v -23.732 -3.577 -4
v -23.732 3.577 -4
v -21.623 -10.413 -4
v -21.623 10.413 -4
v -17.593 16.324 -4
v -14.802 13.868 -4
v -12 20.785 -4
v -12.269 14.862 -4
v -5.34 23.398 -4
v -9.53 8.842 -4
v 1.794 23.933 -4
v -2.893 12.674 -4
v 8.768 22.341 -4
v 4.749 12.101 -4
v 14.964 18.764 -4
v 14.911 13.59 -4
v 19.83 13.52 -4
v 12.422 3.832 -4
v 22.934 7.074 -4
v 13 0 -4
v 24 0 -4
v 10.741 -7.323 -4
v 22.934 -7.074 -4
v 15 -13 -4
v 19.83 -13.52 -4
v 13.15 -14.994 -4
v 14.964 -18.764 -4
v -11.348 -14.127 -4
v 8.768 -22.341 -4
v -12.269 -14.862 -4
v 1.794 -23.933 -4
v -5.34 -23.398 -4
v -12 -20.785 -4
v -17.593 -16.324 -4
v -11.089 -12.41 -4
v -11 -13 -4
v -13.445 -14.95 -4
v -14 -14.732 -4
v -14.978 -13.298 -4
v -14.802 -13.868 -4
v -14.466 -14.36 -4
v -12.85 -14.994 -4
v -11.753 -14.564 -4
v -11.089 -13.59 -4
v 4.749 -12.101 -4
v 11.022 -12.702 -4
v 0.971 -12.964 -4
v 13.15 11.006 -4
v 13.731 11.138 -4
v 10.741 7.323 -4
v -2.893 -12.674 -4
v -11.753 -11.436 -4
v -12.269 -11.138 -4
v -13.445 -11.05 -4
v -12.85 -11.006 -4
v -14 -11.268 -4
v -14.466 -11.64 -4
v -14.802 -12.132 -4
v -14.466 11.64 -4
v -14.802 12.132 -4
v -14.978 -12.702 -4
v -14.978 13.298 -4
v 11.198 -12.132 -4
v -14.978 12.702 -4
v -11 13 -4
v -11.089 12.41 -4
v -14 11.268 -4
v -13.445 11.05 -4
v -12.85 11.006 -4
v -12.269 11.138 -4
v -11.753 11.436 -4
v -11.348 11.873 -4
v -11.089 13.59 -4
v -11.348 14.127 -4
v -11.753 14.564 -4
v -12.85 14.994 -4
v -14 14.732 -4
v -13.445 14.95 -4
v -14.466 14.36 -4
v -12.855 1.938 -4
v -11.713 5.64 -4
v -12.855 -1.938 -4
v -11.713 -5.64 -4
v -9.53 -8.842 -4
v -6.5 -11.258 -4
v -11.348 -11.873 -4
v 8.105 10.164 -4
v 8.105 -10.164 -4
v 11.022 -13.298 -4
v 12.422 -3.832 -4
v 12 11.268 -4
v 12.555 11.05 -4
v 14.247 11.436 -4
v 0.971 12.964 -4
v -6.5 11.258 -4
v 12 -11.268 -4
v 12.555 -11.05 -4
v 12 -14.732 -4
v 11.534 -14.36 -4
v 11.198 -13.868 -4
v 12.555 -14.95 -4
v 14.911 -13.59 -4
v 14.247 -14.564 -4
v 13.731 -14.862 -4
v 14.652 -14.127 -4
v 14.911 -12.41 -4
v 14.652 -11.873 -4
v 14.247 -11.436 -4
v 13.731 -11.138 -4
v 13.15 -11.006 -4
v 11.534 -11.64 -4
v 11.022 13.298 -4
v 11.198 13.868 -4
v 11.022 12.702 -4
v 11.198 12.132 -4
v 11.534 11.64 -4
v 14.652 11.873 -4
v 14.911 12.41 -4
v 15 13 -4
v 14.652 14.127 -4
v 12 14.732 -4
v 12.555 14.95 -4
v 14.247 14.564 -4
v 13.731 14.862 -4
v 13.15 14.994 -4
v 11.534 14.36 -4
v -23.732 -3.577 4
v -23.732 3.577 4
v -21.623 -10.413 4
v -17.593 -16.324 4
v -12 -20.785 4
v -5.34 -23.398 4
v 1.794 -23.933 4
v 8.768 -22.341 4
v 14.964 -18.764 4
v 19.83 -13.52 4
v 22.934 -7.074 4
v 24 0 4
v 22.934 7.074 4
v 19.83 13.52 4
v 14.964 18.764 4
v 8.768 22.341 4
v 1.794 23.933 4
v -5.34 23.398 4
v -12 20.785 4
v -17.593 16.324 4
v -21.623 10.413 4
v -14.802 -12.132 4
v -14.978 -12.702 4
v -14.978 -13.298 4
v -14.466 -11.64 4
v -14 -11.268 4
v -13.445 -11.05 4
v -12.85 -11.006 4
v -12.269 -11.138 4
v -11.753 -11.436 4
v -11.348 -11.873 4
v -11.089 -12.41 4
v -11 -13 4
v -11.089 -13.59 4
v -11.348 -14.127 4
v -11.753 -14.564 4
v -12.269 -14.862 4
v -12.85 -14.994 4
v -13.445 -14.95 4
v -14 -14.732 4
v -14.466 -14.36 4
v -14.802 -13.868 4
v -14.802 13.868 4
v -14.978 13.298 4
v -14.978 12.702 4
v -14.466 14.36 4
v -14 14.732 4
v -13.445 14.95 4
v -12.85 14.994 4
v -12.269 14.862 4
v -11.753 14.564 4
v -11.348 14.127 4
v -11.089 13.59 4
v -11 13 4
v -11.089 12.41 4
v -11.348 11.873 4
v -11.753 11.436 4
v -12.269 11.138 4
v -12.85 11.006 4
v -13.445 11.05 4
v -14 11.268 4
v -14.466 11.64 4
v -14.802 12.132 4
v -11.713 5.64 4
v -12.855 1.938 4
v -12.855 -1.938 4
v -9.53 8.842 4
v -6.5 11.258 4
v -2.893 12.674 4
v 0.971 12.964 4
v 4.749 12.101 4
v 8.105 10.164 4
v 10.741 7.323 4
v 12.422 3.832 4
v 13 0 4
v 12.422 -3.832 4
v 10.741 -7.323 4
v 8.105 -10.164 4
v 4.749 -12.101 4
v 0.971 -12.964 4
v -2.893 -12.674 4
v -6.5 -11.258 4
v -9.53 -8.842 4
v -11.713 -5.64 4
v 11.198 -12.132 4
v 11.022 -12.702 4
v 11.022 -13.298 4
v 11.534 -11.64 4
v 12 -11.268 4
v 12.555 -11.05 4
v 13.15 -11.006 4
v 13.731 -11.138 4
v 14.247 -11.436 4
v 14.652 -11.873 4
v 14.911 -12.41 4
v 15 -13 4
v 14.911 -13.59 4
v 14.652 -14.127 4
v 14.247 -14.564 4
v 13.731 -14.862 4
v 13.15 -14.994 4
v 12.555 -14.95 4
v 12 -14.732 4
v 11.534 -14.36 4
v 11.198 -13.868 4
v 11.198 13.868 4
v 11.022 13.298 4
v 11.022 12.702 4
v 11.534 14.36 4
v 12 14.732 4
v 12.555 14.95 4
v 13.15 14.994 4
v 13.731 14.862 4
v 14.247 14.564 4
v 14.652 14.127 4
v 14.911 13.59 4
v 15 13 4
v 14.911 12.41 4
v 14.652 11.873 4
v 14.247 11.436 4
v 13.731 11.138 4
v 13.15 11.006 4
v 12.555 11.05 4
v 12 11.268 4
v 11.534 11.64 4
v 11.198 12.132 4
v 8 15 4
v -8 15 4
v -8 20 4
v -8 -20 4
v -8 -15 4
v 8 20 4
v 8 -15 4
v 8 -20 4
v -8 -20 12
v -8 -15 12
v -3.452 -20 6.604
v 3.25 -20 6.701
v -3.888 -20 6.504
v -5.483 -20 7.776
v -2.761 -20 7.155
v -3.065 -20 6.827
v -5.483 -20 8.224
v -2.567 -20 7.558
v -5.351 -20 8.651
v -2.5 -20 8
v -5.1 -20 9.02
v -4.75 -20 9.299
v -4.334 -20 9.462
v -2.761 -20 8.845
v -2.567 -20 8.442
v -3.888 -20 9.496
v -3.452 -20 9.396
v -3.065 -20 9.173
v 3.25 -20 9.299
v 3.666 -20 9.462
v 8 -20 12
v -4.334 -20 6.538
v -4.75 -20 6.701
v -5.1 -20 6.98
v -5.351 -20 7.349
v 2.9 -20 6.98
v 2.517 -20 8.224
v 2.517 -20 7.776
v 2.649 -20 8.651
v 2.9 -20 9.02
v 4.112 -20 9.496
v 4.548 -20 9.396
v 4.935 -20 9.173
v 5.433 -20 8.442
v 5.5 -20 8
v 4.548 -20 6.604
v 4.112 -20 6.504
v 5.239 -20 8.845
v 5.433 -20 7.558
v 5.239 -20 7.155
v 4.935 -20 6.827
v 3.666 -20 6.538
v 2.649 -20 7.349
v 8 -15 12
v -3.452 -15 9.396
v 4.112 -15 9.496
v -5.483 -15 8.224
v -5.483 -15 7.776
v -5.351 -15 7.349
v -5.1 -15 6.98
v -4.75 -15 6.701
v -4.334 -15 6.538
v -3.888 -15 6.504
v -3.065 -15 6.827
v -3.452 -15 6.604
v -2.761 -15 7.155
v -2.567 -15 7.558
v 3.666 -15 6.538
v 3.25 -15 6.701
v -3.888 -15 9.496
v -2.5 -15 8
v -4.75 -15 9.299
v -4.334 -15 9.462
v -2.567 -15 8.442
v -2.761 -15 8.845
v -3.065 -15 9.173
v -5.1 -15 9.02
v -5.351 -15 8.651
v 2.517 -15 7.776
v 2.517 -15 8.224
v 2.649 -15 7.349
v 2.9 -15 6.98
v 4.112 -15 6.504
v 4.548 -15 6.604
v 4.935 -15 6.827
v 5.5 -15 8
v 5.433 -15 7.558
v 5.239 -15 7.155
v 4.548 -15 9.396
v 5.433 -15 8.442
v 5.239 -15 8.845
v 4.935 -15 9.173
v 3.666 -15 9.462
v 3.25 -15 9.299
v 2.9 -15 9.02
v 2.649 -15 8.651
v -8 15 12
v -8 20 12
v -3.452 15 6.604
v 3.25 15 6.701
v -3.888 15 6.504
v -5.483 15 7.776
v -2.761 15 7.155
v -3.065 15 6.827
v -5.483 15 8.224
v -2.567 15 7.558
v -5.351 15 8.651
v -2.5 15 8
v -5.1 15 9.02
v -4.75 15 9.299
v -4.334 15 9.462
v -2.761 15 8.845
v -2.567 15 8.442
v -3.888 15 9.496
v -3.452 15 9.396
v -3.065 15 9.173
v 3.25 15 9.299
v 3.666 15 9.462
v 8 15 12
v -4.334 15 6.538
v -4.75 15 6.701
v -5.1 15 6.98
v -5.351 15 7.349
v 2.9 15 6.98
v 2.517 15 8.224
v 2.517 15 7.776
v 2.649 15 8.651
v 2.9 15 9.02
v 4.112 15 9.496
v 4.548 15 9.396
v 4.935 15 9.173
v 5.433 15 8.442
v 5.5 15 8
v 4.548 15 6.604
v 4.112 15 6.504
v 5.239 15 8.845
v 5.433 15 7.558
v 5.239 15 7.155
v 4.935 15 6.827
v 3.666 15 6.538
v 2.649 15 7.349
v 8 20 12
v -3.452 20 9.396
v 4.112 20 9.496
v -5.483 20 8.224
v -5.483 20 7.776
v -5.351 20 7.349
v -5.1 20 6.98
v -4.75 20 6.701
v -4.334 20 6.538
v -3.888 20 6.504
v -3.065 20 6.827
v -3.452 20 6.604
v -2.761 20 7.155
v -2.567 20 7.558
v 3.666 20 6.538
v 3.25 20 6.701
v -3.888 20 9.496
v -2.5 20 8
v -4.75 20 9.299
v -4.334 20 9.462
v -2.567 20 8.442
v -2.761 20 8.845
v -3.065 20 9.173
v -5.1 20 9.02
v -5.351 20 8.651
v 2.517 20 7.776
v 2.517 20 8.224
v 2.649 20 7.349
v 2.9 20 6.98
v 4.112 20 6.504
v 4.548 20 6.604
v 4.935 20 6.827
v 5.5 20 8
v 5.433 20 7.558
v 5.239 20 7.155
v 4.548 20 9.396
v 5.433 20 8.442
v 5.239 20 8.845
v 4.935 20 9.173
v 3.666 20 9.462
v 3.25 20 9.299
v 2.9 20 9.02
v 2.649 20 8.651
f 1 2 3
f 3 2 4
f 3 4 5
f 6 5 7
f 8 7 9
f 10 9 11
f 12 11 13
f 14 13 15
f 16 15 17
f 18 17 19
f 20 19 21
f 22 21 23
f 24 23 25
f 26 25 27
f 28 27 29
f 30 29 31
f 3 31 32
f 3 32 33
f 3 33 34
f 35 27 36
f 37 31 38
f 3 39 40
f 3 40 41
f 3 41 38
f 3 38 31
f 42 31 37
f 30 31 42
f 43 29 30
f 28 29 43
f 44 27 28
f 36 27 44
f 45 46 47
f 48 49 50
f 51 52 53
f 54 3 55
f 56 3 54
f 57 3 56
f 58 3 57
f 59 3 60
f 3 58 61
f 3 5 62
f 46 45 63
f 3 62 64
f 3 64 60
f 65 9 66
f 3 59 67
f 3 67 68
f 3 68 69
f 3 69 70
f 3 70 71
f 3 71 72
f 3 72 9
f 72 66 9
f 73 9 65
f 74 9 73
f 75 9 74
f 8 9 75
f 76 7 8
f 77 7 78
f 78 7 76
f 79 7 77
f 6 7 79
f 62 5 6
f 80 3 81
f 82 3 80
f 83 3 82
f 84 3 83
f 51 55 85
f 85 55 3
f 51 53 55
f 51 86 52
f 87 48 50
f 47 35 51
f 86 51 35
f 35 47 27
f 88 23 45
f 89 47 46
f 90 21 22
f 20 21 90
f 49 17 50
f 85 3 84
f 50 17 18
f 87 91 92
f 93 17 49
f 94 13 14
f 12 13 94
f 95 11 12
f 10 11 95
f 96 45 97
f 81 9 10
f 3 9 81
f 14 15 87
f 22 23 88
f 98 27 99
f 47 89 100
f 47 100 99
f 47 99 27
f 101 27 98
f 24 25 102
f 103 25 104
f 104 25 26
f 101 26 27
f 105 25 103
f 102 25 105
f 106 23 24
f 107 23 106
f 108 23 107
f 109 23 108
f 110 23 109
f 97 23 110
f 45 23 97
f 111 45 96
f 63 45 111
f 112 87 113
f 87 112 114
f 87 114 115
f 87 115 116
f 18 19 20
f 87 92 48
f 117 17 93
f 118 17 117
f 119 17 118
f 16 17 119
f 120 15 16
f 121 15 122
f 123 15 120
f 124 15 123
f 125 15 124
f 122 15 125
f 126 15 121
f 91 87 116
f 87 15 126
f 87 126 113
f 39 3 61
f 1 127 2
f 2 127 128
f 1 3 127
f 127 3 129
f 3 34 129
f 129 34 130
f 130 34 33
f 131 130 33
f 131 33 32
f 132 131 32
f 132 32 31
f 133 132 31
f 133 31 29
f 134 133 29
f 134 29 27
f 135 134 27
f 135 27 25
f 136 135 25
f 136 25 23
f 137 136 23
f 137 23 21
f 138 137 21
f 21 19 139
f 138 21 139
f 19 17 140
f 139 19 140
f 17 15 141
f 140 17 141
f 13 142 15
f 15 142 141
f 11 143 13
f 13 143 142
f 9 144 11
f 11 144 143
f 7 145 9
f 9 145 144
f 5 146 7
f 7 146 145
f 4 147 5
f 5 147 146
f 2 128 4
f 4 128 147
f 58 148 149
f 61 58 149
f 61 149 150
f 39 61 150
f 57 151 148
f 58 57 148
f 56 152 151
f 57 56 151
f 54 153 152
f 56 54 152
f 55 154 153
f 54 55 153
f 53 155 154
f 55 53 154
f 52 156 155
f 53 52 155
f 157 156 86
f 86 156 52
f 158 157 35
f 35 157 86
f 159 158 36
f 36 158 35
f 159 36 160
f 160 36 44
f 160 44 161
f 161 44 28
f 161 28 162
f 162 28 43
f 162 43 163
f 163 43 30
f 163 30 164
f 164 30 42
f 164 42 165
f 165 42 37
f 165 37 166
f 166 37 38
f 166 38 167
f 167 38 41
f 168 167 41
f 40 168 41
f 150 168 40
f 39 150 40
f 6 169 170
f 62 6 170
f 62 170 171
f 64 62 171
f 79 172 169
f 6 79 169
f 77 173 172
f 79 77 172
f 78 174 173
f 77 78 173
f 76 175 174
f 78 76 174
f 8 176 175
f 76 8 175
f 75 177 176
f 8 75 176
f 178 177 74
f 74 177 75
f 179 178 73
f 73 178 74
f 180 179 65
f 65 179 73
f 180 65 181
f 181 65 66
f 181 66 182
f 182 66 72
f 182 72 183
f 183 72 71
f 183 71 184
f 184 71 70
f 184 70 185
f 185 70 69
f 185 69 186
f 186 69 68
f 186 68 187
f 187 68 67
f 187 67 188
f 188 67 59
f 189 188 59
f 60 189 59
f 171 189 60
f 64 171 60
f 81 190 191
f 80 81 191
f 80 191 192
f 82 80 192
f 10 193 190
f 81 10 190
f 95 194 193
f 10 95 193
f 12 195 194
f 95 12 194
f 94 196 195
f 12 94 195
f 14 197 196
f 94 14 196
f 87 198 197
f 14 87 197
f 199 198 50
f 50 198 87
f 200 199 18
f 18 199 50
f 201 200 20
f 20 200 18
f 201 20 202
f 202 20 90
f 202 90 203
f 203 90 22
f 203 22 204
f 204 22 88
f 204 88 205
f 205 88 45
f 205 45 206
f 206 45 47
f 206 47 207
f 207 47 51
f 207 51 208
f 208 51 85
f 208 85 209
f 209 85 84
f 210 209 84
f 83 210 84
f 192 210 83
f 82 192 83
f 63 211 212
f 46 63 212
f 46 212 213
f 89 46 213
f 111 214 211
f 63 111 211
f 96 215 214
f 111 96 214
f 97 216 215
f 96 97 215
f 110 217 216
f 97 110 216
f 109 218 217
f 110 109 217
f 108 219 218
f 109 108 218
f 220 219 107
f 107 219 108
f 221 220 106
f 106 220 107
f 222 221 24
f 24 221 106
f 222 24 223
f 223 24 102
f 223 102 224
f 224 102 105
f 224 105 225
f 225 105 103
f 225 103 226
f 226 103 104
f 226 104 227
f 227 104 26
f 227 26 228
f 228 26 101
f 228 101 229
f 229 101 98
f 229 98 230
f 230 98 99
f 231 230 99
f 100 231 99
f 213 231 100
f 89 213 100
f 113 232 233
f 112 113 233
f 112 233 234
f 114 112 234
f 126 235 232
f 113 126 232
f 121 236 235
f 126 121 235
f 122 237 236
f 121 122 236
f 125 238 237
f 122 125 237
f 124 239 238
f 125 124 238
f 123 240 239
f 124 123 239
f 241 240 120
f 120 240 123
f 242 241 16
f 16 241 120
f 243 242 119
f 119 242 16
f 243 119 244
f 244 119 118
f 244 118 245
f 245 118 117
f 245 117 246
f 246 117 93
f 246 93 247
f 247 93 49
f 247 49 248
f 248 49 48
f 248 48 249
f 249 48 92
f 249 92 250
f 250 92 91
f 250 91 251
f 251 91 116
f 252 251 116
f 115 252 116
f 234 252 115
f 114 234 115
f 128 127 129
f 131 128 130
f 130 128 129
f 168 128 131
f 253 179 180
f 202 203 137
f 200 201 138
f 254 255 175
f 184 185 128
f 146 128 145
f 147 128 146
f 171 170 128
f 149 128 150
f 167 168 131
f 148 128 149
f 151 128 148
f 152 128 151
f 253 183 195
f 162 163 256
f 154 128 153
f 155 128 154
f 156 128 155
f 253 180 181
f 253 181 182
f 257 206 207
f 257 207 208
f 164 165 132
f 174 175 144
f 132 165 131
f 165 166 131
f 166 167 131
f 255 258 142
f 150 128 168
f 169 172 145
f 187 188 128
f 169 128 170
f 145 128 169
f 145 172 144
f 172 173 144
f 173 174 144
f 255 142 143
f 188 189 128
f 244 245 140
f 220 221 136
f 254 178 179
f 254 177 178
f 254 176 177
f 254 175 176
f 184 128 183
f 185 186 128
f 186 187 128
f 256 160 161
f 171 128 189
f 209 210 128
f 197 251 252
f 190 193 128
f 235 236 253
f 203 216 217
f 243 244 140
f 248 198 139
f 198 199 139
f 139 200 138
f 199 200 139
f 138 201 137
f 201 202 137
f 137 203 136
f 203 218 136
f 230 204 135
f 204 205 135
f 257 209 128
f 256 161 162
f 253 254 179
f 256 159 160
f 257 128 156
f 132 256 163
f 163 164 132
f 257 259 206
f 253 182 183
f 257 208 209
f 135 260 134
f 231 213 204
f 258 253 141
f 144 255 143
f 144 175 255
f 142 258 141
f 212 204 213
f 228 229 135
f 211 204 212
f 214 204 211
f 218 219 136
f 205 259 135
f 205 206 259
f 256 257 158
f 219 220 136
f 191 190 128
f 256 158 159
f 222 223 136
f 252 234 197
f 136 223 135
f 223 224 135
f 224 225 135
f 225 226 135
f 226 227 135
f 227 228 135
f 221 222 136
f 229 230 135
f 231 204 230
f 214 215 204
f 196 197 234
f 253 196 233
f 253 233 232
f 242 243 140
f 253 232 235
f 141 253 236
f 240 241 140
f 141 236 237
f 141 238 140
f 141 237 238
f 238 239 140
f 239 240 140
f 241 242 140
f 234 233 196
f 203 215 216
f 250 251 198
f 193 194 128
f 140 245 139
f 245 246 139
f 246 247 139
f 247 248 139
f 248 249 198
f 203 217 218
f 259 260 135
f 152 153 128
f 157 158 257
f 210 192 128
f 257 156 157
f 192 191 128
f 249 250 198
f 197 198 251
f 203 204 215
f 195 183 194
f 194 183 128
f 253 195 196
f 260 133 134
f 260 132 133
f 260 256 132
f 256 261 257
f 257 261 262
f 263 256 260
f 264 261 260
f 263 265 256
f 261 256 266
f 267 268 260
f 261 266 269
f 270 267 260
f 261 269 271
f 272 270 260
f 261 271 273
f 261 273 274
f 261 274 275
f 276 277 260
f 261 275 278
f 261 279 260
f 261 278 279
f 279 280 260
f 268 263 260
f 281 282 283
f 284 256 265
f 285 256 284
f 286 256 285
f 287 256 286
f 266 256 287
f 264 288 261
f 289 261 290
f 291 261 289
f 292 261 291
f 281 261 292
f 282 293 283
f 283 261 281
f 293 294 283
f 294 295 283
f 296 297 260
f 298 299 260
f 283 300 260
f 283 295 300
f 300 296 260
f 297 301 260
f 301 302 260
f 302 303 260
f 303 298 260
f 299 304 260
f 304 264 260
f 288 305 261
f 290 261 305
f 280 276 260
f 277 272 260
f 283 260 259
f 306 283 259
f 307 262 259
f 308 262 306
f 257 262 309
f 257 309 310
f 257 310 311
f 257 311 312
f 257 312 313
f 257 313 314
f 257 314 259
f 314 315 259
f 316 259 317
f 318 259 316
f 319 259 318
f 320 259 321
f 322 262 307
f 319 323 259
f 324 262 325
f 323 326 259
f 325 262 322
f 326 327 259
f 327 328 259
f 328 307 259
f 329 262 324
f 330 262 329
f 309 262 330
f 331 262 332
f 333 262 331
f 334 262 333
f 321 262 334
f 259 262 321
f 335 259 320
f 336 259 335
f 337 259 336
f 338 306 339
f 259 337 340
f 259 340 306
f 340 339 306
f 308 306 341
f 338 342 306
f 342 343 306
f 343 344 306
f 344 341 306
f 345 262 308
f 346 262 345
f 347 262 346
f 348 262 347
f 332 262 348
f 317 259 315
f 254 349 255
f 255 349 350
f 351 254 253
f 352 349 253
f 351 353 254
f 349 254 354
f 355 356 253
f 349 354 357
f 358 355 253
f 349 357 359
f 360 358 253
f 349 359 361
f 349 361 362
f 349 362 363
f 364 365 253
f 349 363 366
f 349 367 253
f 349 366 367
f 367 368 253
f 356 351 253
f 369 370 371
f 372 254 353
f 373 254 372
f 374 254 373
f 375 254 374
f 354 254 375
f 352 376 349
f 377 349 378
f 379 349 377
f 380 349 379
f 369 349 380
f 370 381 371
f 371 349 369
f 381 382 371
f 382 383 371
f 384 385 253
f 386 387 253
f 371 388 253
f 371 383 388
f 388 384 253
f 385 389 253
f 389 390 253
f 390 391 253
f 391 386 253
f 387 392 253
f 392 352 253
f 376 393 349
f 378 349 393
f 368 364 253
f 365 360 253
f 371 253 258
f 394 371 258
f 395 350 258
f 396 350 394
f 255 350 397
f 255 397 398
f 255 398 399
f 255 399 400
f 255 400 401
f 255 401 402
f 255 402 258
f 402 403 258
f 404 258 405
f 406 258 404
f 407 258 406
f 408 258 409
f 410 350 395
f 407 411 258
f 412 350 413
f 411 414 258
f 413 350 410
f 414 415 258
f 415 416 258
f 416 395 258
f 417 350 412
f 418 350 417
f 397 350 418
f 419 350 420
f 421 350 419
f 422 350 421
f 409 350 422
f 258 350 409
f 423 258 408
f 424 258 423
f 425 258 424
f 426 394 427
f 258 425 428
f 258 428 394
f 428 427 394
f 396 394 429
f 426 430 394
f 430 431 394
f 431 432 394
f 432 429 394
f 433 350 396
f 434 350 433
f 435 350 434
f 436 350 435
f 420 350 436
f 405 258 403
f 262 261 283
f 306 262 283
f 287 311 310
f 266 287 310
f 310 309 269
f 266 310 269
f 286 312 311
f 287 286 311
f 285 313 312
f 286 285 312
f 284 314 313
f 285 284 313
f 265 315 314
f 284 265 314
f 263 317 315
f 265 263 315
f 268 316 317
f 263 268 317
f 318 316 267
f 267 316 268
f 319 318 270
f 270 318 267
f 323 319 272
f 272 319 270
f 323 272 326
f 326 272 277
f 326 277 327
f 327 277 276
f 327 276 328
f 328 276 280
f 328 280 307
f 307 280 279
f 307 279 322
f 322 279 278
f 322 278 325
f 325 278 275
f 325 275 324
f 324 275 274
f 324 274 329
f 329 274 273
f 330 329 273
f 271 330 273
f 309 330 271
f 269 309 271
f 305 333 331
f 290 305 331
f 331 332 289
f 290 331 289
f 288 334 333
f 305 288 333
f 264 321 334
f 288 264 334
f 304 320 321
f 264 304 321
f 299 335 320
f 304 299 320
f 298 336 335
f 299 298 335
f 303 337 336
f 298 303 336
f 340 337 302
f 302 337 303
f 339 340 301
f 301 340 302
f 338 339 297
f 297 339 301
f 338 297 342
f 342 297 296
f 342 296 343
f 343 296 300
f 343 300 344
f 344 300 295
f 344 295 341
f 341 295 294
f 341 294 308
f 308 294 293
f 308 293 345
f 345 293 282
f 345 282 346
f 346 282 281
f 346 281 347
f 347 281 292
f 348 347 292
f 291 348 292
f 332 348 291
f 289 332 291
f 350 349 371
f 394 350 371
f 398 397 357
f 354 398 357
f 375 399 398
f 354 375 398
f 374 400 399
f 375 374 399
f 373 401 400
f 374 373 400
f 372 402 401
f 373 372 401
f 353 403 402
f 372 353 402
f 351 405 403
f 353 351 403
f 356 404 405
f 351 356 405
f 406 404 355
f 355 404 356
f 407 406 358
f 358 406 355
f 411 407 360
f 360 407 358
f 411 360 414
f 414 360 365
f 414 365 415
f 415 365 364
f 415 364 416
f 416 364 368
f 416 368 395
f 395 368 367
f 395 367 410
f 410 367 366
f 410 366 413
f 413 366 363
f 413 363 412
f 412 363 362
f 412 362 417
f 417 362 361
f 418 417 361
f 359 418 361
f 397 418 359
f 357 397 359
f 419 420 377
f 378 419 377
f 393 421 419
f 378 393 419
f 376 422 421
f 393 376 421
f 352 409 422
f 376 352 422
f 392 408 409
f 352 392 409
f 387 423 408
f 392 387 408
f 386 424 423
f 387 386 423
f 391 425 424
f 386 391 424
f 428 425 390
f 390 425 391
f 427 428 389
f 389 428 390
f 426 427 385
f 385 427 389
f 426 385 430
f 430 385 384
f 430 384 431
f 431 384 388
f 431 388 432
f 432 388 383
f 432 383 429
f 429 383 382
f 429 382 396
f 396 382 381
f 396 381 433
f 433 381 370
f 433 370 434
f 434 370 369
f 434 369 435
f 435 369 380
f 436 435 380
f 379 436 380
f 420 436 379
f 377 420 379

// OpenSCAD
$fn = 21;
difference(){
	union(){	
		translate([0,0,0])cylinder(r = 24, h = 8,center=true);
		
		translate([-8,15,0])cube([16,5,12]);
		translate([-8,-5-15,0])cube([16,5,12]);
		
	}
	translate([0,0,0])cylinder(r = 13, h = 9,center=true);
	translate([13,13,0])cylinder(r = 2, h = 9,center=true);
	translate([-13,13,0])cylinder(r = 2, h = 9,center=true);
	translate([13,-13,0])cylinder(r = 2, h = 9,center=true);
	translate([-13,-13,0])cylinder(r = 2, h = 9,center=true);
	translate([4,21,8])rotate([90,0,0])cylinder(r = 1.5, h = 9);
	translate([-4,21,8])rotate([90,0,0])cylinder(r = 1.5, h = 9);
	translate([4,-21,8])rotate([-90,0,0])cylinder(r = 1.5, h = 9);
	translate([-4,-21,8])rotate([-90,0,0])cylinder(r = 1.5, h = 9);
}
